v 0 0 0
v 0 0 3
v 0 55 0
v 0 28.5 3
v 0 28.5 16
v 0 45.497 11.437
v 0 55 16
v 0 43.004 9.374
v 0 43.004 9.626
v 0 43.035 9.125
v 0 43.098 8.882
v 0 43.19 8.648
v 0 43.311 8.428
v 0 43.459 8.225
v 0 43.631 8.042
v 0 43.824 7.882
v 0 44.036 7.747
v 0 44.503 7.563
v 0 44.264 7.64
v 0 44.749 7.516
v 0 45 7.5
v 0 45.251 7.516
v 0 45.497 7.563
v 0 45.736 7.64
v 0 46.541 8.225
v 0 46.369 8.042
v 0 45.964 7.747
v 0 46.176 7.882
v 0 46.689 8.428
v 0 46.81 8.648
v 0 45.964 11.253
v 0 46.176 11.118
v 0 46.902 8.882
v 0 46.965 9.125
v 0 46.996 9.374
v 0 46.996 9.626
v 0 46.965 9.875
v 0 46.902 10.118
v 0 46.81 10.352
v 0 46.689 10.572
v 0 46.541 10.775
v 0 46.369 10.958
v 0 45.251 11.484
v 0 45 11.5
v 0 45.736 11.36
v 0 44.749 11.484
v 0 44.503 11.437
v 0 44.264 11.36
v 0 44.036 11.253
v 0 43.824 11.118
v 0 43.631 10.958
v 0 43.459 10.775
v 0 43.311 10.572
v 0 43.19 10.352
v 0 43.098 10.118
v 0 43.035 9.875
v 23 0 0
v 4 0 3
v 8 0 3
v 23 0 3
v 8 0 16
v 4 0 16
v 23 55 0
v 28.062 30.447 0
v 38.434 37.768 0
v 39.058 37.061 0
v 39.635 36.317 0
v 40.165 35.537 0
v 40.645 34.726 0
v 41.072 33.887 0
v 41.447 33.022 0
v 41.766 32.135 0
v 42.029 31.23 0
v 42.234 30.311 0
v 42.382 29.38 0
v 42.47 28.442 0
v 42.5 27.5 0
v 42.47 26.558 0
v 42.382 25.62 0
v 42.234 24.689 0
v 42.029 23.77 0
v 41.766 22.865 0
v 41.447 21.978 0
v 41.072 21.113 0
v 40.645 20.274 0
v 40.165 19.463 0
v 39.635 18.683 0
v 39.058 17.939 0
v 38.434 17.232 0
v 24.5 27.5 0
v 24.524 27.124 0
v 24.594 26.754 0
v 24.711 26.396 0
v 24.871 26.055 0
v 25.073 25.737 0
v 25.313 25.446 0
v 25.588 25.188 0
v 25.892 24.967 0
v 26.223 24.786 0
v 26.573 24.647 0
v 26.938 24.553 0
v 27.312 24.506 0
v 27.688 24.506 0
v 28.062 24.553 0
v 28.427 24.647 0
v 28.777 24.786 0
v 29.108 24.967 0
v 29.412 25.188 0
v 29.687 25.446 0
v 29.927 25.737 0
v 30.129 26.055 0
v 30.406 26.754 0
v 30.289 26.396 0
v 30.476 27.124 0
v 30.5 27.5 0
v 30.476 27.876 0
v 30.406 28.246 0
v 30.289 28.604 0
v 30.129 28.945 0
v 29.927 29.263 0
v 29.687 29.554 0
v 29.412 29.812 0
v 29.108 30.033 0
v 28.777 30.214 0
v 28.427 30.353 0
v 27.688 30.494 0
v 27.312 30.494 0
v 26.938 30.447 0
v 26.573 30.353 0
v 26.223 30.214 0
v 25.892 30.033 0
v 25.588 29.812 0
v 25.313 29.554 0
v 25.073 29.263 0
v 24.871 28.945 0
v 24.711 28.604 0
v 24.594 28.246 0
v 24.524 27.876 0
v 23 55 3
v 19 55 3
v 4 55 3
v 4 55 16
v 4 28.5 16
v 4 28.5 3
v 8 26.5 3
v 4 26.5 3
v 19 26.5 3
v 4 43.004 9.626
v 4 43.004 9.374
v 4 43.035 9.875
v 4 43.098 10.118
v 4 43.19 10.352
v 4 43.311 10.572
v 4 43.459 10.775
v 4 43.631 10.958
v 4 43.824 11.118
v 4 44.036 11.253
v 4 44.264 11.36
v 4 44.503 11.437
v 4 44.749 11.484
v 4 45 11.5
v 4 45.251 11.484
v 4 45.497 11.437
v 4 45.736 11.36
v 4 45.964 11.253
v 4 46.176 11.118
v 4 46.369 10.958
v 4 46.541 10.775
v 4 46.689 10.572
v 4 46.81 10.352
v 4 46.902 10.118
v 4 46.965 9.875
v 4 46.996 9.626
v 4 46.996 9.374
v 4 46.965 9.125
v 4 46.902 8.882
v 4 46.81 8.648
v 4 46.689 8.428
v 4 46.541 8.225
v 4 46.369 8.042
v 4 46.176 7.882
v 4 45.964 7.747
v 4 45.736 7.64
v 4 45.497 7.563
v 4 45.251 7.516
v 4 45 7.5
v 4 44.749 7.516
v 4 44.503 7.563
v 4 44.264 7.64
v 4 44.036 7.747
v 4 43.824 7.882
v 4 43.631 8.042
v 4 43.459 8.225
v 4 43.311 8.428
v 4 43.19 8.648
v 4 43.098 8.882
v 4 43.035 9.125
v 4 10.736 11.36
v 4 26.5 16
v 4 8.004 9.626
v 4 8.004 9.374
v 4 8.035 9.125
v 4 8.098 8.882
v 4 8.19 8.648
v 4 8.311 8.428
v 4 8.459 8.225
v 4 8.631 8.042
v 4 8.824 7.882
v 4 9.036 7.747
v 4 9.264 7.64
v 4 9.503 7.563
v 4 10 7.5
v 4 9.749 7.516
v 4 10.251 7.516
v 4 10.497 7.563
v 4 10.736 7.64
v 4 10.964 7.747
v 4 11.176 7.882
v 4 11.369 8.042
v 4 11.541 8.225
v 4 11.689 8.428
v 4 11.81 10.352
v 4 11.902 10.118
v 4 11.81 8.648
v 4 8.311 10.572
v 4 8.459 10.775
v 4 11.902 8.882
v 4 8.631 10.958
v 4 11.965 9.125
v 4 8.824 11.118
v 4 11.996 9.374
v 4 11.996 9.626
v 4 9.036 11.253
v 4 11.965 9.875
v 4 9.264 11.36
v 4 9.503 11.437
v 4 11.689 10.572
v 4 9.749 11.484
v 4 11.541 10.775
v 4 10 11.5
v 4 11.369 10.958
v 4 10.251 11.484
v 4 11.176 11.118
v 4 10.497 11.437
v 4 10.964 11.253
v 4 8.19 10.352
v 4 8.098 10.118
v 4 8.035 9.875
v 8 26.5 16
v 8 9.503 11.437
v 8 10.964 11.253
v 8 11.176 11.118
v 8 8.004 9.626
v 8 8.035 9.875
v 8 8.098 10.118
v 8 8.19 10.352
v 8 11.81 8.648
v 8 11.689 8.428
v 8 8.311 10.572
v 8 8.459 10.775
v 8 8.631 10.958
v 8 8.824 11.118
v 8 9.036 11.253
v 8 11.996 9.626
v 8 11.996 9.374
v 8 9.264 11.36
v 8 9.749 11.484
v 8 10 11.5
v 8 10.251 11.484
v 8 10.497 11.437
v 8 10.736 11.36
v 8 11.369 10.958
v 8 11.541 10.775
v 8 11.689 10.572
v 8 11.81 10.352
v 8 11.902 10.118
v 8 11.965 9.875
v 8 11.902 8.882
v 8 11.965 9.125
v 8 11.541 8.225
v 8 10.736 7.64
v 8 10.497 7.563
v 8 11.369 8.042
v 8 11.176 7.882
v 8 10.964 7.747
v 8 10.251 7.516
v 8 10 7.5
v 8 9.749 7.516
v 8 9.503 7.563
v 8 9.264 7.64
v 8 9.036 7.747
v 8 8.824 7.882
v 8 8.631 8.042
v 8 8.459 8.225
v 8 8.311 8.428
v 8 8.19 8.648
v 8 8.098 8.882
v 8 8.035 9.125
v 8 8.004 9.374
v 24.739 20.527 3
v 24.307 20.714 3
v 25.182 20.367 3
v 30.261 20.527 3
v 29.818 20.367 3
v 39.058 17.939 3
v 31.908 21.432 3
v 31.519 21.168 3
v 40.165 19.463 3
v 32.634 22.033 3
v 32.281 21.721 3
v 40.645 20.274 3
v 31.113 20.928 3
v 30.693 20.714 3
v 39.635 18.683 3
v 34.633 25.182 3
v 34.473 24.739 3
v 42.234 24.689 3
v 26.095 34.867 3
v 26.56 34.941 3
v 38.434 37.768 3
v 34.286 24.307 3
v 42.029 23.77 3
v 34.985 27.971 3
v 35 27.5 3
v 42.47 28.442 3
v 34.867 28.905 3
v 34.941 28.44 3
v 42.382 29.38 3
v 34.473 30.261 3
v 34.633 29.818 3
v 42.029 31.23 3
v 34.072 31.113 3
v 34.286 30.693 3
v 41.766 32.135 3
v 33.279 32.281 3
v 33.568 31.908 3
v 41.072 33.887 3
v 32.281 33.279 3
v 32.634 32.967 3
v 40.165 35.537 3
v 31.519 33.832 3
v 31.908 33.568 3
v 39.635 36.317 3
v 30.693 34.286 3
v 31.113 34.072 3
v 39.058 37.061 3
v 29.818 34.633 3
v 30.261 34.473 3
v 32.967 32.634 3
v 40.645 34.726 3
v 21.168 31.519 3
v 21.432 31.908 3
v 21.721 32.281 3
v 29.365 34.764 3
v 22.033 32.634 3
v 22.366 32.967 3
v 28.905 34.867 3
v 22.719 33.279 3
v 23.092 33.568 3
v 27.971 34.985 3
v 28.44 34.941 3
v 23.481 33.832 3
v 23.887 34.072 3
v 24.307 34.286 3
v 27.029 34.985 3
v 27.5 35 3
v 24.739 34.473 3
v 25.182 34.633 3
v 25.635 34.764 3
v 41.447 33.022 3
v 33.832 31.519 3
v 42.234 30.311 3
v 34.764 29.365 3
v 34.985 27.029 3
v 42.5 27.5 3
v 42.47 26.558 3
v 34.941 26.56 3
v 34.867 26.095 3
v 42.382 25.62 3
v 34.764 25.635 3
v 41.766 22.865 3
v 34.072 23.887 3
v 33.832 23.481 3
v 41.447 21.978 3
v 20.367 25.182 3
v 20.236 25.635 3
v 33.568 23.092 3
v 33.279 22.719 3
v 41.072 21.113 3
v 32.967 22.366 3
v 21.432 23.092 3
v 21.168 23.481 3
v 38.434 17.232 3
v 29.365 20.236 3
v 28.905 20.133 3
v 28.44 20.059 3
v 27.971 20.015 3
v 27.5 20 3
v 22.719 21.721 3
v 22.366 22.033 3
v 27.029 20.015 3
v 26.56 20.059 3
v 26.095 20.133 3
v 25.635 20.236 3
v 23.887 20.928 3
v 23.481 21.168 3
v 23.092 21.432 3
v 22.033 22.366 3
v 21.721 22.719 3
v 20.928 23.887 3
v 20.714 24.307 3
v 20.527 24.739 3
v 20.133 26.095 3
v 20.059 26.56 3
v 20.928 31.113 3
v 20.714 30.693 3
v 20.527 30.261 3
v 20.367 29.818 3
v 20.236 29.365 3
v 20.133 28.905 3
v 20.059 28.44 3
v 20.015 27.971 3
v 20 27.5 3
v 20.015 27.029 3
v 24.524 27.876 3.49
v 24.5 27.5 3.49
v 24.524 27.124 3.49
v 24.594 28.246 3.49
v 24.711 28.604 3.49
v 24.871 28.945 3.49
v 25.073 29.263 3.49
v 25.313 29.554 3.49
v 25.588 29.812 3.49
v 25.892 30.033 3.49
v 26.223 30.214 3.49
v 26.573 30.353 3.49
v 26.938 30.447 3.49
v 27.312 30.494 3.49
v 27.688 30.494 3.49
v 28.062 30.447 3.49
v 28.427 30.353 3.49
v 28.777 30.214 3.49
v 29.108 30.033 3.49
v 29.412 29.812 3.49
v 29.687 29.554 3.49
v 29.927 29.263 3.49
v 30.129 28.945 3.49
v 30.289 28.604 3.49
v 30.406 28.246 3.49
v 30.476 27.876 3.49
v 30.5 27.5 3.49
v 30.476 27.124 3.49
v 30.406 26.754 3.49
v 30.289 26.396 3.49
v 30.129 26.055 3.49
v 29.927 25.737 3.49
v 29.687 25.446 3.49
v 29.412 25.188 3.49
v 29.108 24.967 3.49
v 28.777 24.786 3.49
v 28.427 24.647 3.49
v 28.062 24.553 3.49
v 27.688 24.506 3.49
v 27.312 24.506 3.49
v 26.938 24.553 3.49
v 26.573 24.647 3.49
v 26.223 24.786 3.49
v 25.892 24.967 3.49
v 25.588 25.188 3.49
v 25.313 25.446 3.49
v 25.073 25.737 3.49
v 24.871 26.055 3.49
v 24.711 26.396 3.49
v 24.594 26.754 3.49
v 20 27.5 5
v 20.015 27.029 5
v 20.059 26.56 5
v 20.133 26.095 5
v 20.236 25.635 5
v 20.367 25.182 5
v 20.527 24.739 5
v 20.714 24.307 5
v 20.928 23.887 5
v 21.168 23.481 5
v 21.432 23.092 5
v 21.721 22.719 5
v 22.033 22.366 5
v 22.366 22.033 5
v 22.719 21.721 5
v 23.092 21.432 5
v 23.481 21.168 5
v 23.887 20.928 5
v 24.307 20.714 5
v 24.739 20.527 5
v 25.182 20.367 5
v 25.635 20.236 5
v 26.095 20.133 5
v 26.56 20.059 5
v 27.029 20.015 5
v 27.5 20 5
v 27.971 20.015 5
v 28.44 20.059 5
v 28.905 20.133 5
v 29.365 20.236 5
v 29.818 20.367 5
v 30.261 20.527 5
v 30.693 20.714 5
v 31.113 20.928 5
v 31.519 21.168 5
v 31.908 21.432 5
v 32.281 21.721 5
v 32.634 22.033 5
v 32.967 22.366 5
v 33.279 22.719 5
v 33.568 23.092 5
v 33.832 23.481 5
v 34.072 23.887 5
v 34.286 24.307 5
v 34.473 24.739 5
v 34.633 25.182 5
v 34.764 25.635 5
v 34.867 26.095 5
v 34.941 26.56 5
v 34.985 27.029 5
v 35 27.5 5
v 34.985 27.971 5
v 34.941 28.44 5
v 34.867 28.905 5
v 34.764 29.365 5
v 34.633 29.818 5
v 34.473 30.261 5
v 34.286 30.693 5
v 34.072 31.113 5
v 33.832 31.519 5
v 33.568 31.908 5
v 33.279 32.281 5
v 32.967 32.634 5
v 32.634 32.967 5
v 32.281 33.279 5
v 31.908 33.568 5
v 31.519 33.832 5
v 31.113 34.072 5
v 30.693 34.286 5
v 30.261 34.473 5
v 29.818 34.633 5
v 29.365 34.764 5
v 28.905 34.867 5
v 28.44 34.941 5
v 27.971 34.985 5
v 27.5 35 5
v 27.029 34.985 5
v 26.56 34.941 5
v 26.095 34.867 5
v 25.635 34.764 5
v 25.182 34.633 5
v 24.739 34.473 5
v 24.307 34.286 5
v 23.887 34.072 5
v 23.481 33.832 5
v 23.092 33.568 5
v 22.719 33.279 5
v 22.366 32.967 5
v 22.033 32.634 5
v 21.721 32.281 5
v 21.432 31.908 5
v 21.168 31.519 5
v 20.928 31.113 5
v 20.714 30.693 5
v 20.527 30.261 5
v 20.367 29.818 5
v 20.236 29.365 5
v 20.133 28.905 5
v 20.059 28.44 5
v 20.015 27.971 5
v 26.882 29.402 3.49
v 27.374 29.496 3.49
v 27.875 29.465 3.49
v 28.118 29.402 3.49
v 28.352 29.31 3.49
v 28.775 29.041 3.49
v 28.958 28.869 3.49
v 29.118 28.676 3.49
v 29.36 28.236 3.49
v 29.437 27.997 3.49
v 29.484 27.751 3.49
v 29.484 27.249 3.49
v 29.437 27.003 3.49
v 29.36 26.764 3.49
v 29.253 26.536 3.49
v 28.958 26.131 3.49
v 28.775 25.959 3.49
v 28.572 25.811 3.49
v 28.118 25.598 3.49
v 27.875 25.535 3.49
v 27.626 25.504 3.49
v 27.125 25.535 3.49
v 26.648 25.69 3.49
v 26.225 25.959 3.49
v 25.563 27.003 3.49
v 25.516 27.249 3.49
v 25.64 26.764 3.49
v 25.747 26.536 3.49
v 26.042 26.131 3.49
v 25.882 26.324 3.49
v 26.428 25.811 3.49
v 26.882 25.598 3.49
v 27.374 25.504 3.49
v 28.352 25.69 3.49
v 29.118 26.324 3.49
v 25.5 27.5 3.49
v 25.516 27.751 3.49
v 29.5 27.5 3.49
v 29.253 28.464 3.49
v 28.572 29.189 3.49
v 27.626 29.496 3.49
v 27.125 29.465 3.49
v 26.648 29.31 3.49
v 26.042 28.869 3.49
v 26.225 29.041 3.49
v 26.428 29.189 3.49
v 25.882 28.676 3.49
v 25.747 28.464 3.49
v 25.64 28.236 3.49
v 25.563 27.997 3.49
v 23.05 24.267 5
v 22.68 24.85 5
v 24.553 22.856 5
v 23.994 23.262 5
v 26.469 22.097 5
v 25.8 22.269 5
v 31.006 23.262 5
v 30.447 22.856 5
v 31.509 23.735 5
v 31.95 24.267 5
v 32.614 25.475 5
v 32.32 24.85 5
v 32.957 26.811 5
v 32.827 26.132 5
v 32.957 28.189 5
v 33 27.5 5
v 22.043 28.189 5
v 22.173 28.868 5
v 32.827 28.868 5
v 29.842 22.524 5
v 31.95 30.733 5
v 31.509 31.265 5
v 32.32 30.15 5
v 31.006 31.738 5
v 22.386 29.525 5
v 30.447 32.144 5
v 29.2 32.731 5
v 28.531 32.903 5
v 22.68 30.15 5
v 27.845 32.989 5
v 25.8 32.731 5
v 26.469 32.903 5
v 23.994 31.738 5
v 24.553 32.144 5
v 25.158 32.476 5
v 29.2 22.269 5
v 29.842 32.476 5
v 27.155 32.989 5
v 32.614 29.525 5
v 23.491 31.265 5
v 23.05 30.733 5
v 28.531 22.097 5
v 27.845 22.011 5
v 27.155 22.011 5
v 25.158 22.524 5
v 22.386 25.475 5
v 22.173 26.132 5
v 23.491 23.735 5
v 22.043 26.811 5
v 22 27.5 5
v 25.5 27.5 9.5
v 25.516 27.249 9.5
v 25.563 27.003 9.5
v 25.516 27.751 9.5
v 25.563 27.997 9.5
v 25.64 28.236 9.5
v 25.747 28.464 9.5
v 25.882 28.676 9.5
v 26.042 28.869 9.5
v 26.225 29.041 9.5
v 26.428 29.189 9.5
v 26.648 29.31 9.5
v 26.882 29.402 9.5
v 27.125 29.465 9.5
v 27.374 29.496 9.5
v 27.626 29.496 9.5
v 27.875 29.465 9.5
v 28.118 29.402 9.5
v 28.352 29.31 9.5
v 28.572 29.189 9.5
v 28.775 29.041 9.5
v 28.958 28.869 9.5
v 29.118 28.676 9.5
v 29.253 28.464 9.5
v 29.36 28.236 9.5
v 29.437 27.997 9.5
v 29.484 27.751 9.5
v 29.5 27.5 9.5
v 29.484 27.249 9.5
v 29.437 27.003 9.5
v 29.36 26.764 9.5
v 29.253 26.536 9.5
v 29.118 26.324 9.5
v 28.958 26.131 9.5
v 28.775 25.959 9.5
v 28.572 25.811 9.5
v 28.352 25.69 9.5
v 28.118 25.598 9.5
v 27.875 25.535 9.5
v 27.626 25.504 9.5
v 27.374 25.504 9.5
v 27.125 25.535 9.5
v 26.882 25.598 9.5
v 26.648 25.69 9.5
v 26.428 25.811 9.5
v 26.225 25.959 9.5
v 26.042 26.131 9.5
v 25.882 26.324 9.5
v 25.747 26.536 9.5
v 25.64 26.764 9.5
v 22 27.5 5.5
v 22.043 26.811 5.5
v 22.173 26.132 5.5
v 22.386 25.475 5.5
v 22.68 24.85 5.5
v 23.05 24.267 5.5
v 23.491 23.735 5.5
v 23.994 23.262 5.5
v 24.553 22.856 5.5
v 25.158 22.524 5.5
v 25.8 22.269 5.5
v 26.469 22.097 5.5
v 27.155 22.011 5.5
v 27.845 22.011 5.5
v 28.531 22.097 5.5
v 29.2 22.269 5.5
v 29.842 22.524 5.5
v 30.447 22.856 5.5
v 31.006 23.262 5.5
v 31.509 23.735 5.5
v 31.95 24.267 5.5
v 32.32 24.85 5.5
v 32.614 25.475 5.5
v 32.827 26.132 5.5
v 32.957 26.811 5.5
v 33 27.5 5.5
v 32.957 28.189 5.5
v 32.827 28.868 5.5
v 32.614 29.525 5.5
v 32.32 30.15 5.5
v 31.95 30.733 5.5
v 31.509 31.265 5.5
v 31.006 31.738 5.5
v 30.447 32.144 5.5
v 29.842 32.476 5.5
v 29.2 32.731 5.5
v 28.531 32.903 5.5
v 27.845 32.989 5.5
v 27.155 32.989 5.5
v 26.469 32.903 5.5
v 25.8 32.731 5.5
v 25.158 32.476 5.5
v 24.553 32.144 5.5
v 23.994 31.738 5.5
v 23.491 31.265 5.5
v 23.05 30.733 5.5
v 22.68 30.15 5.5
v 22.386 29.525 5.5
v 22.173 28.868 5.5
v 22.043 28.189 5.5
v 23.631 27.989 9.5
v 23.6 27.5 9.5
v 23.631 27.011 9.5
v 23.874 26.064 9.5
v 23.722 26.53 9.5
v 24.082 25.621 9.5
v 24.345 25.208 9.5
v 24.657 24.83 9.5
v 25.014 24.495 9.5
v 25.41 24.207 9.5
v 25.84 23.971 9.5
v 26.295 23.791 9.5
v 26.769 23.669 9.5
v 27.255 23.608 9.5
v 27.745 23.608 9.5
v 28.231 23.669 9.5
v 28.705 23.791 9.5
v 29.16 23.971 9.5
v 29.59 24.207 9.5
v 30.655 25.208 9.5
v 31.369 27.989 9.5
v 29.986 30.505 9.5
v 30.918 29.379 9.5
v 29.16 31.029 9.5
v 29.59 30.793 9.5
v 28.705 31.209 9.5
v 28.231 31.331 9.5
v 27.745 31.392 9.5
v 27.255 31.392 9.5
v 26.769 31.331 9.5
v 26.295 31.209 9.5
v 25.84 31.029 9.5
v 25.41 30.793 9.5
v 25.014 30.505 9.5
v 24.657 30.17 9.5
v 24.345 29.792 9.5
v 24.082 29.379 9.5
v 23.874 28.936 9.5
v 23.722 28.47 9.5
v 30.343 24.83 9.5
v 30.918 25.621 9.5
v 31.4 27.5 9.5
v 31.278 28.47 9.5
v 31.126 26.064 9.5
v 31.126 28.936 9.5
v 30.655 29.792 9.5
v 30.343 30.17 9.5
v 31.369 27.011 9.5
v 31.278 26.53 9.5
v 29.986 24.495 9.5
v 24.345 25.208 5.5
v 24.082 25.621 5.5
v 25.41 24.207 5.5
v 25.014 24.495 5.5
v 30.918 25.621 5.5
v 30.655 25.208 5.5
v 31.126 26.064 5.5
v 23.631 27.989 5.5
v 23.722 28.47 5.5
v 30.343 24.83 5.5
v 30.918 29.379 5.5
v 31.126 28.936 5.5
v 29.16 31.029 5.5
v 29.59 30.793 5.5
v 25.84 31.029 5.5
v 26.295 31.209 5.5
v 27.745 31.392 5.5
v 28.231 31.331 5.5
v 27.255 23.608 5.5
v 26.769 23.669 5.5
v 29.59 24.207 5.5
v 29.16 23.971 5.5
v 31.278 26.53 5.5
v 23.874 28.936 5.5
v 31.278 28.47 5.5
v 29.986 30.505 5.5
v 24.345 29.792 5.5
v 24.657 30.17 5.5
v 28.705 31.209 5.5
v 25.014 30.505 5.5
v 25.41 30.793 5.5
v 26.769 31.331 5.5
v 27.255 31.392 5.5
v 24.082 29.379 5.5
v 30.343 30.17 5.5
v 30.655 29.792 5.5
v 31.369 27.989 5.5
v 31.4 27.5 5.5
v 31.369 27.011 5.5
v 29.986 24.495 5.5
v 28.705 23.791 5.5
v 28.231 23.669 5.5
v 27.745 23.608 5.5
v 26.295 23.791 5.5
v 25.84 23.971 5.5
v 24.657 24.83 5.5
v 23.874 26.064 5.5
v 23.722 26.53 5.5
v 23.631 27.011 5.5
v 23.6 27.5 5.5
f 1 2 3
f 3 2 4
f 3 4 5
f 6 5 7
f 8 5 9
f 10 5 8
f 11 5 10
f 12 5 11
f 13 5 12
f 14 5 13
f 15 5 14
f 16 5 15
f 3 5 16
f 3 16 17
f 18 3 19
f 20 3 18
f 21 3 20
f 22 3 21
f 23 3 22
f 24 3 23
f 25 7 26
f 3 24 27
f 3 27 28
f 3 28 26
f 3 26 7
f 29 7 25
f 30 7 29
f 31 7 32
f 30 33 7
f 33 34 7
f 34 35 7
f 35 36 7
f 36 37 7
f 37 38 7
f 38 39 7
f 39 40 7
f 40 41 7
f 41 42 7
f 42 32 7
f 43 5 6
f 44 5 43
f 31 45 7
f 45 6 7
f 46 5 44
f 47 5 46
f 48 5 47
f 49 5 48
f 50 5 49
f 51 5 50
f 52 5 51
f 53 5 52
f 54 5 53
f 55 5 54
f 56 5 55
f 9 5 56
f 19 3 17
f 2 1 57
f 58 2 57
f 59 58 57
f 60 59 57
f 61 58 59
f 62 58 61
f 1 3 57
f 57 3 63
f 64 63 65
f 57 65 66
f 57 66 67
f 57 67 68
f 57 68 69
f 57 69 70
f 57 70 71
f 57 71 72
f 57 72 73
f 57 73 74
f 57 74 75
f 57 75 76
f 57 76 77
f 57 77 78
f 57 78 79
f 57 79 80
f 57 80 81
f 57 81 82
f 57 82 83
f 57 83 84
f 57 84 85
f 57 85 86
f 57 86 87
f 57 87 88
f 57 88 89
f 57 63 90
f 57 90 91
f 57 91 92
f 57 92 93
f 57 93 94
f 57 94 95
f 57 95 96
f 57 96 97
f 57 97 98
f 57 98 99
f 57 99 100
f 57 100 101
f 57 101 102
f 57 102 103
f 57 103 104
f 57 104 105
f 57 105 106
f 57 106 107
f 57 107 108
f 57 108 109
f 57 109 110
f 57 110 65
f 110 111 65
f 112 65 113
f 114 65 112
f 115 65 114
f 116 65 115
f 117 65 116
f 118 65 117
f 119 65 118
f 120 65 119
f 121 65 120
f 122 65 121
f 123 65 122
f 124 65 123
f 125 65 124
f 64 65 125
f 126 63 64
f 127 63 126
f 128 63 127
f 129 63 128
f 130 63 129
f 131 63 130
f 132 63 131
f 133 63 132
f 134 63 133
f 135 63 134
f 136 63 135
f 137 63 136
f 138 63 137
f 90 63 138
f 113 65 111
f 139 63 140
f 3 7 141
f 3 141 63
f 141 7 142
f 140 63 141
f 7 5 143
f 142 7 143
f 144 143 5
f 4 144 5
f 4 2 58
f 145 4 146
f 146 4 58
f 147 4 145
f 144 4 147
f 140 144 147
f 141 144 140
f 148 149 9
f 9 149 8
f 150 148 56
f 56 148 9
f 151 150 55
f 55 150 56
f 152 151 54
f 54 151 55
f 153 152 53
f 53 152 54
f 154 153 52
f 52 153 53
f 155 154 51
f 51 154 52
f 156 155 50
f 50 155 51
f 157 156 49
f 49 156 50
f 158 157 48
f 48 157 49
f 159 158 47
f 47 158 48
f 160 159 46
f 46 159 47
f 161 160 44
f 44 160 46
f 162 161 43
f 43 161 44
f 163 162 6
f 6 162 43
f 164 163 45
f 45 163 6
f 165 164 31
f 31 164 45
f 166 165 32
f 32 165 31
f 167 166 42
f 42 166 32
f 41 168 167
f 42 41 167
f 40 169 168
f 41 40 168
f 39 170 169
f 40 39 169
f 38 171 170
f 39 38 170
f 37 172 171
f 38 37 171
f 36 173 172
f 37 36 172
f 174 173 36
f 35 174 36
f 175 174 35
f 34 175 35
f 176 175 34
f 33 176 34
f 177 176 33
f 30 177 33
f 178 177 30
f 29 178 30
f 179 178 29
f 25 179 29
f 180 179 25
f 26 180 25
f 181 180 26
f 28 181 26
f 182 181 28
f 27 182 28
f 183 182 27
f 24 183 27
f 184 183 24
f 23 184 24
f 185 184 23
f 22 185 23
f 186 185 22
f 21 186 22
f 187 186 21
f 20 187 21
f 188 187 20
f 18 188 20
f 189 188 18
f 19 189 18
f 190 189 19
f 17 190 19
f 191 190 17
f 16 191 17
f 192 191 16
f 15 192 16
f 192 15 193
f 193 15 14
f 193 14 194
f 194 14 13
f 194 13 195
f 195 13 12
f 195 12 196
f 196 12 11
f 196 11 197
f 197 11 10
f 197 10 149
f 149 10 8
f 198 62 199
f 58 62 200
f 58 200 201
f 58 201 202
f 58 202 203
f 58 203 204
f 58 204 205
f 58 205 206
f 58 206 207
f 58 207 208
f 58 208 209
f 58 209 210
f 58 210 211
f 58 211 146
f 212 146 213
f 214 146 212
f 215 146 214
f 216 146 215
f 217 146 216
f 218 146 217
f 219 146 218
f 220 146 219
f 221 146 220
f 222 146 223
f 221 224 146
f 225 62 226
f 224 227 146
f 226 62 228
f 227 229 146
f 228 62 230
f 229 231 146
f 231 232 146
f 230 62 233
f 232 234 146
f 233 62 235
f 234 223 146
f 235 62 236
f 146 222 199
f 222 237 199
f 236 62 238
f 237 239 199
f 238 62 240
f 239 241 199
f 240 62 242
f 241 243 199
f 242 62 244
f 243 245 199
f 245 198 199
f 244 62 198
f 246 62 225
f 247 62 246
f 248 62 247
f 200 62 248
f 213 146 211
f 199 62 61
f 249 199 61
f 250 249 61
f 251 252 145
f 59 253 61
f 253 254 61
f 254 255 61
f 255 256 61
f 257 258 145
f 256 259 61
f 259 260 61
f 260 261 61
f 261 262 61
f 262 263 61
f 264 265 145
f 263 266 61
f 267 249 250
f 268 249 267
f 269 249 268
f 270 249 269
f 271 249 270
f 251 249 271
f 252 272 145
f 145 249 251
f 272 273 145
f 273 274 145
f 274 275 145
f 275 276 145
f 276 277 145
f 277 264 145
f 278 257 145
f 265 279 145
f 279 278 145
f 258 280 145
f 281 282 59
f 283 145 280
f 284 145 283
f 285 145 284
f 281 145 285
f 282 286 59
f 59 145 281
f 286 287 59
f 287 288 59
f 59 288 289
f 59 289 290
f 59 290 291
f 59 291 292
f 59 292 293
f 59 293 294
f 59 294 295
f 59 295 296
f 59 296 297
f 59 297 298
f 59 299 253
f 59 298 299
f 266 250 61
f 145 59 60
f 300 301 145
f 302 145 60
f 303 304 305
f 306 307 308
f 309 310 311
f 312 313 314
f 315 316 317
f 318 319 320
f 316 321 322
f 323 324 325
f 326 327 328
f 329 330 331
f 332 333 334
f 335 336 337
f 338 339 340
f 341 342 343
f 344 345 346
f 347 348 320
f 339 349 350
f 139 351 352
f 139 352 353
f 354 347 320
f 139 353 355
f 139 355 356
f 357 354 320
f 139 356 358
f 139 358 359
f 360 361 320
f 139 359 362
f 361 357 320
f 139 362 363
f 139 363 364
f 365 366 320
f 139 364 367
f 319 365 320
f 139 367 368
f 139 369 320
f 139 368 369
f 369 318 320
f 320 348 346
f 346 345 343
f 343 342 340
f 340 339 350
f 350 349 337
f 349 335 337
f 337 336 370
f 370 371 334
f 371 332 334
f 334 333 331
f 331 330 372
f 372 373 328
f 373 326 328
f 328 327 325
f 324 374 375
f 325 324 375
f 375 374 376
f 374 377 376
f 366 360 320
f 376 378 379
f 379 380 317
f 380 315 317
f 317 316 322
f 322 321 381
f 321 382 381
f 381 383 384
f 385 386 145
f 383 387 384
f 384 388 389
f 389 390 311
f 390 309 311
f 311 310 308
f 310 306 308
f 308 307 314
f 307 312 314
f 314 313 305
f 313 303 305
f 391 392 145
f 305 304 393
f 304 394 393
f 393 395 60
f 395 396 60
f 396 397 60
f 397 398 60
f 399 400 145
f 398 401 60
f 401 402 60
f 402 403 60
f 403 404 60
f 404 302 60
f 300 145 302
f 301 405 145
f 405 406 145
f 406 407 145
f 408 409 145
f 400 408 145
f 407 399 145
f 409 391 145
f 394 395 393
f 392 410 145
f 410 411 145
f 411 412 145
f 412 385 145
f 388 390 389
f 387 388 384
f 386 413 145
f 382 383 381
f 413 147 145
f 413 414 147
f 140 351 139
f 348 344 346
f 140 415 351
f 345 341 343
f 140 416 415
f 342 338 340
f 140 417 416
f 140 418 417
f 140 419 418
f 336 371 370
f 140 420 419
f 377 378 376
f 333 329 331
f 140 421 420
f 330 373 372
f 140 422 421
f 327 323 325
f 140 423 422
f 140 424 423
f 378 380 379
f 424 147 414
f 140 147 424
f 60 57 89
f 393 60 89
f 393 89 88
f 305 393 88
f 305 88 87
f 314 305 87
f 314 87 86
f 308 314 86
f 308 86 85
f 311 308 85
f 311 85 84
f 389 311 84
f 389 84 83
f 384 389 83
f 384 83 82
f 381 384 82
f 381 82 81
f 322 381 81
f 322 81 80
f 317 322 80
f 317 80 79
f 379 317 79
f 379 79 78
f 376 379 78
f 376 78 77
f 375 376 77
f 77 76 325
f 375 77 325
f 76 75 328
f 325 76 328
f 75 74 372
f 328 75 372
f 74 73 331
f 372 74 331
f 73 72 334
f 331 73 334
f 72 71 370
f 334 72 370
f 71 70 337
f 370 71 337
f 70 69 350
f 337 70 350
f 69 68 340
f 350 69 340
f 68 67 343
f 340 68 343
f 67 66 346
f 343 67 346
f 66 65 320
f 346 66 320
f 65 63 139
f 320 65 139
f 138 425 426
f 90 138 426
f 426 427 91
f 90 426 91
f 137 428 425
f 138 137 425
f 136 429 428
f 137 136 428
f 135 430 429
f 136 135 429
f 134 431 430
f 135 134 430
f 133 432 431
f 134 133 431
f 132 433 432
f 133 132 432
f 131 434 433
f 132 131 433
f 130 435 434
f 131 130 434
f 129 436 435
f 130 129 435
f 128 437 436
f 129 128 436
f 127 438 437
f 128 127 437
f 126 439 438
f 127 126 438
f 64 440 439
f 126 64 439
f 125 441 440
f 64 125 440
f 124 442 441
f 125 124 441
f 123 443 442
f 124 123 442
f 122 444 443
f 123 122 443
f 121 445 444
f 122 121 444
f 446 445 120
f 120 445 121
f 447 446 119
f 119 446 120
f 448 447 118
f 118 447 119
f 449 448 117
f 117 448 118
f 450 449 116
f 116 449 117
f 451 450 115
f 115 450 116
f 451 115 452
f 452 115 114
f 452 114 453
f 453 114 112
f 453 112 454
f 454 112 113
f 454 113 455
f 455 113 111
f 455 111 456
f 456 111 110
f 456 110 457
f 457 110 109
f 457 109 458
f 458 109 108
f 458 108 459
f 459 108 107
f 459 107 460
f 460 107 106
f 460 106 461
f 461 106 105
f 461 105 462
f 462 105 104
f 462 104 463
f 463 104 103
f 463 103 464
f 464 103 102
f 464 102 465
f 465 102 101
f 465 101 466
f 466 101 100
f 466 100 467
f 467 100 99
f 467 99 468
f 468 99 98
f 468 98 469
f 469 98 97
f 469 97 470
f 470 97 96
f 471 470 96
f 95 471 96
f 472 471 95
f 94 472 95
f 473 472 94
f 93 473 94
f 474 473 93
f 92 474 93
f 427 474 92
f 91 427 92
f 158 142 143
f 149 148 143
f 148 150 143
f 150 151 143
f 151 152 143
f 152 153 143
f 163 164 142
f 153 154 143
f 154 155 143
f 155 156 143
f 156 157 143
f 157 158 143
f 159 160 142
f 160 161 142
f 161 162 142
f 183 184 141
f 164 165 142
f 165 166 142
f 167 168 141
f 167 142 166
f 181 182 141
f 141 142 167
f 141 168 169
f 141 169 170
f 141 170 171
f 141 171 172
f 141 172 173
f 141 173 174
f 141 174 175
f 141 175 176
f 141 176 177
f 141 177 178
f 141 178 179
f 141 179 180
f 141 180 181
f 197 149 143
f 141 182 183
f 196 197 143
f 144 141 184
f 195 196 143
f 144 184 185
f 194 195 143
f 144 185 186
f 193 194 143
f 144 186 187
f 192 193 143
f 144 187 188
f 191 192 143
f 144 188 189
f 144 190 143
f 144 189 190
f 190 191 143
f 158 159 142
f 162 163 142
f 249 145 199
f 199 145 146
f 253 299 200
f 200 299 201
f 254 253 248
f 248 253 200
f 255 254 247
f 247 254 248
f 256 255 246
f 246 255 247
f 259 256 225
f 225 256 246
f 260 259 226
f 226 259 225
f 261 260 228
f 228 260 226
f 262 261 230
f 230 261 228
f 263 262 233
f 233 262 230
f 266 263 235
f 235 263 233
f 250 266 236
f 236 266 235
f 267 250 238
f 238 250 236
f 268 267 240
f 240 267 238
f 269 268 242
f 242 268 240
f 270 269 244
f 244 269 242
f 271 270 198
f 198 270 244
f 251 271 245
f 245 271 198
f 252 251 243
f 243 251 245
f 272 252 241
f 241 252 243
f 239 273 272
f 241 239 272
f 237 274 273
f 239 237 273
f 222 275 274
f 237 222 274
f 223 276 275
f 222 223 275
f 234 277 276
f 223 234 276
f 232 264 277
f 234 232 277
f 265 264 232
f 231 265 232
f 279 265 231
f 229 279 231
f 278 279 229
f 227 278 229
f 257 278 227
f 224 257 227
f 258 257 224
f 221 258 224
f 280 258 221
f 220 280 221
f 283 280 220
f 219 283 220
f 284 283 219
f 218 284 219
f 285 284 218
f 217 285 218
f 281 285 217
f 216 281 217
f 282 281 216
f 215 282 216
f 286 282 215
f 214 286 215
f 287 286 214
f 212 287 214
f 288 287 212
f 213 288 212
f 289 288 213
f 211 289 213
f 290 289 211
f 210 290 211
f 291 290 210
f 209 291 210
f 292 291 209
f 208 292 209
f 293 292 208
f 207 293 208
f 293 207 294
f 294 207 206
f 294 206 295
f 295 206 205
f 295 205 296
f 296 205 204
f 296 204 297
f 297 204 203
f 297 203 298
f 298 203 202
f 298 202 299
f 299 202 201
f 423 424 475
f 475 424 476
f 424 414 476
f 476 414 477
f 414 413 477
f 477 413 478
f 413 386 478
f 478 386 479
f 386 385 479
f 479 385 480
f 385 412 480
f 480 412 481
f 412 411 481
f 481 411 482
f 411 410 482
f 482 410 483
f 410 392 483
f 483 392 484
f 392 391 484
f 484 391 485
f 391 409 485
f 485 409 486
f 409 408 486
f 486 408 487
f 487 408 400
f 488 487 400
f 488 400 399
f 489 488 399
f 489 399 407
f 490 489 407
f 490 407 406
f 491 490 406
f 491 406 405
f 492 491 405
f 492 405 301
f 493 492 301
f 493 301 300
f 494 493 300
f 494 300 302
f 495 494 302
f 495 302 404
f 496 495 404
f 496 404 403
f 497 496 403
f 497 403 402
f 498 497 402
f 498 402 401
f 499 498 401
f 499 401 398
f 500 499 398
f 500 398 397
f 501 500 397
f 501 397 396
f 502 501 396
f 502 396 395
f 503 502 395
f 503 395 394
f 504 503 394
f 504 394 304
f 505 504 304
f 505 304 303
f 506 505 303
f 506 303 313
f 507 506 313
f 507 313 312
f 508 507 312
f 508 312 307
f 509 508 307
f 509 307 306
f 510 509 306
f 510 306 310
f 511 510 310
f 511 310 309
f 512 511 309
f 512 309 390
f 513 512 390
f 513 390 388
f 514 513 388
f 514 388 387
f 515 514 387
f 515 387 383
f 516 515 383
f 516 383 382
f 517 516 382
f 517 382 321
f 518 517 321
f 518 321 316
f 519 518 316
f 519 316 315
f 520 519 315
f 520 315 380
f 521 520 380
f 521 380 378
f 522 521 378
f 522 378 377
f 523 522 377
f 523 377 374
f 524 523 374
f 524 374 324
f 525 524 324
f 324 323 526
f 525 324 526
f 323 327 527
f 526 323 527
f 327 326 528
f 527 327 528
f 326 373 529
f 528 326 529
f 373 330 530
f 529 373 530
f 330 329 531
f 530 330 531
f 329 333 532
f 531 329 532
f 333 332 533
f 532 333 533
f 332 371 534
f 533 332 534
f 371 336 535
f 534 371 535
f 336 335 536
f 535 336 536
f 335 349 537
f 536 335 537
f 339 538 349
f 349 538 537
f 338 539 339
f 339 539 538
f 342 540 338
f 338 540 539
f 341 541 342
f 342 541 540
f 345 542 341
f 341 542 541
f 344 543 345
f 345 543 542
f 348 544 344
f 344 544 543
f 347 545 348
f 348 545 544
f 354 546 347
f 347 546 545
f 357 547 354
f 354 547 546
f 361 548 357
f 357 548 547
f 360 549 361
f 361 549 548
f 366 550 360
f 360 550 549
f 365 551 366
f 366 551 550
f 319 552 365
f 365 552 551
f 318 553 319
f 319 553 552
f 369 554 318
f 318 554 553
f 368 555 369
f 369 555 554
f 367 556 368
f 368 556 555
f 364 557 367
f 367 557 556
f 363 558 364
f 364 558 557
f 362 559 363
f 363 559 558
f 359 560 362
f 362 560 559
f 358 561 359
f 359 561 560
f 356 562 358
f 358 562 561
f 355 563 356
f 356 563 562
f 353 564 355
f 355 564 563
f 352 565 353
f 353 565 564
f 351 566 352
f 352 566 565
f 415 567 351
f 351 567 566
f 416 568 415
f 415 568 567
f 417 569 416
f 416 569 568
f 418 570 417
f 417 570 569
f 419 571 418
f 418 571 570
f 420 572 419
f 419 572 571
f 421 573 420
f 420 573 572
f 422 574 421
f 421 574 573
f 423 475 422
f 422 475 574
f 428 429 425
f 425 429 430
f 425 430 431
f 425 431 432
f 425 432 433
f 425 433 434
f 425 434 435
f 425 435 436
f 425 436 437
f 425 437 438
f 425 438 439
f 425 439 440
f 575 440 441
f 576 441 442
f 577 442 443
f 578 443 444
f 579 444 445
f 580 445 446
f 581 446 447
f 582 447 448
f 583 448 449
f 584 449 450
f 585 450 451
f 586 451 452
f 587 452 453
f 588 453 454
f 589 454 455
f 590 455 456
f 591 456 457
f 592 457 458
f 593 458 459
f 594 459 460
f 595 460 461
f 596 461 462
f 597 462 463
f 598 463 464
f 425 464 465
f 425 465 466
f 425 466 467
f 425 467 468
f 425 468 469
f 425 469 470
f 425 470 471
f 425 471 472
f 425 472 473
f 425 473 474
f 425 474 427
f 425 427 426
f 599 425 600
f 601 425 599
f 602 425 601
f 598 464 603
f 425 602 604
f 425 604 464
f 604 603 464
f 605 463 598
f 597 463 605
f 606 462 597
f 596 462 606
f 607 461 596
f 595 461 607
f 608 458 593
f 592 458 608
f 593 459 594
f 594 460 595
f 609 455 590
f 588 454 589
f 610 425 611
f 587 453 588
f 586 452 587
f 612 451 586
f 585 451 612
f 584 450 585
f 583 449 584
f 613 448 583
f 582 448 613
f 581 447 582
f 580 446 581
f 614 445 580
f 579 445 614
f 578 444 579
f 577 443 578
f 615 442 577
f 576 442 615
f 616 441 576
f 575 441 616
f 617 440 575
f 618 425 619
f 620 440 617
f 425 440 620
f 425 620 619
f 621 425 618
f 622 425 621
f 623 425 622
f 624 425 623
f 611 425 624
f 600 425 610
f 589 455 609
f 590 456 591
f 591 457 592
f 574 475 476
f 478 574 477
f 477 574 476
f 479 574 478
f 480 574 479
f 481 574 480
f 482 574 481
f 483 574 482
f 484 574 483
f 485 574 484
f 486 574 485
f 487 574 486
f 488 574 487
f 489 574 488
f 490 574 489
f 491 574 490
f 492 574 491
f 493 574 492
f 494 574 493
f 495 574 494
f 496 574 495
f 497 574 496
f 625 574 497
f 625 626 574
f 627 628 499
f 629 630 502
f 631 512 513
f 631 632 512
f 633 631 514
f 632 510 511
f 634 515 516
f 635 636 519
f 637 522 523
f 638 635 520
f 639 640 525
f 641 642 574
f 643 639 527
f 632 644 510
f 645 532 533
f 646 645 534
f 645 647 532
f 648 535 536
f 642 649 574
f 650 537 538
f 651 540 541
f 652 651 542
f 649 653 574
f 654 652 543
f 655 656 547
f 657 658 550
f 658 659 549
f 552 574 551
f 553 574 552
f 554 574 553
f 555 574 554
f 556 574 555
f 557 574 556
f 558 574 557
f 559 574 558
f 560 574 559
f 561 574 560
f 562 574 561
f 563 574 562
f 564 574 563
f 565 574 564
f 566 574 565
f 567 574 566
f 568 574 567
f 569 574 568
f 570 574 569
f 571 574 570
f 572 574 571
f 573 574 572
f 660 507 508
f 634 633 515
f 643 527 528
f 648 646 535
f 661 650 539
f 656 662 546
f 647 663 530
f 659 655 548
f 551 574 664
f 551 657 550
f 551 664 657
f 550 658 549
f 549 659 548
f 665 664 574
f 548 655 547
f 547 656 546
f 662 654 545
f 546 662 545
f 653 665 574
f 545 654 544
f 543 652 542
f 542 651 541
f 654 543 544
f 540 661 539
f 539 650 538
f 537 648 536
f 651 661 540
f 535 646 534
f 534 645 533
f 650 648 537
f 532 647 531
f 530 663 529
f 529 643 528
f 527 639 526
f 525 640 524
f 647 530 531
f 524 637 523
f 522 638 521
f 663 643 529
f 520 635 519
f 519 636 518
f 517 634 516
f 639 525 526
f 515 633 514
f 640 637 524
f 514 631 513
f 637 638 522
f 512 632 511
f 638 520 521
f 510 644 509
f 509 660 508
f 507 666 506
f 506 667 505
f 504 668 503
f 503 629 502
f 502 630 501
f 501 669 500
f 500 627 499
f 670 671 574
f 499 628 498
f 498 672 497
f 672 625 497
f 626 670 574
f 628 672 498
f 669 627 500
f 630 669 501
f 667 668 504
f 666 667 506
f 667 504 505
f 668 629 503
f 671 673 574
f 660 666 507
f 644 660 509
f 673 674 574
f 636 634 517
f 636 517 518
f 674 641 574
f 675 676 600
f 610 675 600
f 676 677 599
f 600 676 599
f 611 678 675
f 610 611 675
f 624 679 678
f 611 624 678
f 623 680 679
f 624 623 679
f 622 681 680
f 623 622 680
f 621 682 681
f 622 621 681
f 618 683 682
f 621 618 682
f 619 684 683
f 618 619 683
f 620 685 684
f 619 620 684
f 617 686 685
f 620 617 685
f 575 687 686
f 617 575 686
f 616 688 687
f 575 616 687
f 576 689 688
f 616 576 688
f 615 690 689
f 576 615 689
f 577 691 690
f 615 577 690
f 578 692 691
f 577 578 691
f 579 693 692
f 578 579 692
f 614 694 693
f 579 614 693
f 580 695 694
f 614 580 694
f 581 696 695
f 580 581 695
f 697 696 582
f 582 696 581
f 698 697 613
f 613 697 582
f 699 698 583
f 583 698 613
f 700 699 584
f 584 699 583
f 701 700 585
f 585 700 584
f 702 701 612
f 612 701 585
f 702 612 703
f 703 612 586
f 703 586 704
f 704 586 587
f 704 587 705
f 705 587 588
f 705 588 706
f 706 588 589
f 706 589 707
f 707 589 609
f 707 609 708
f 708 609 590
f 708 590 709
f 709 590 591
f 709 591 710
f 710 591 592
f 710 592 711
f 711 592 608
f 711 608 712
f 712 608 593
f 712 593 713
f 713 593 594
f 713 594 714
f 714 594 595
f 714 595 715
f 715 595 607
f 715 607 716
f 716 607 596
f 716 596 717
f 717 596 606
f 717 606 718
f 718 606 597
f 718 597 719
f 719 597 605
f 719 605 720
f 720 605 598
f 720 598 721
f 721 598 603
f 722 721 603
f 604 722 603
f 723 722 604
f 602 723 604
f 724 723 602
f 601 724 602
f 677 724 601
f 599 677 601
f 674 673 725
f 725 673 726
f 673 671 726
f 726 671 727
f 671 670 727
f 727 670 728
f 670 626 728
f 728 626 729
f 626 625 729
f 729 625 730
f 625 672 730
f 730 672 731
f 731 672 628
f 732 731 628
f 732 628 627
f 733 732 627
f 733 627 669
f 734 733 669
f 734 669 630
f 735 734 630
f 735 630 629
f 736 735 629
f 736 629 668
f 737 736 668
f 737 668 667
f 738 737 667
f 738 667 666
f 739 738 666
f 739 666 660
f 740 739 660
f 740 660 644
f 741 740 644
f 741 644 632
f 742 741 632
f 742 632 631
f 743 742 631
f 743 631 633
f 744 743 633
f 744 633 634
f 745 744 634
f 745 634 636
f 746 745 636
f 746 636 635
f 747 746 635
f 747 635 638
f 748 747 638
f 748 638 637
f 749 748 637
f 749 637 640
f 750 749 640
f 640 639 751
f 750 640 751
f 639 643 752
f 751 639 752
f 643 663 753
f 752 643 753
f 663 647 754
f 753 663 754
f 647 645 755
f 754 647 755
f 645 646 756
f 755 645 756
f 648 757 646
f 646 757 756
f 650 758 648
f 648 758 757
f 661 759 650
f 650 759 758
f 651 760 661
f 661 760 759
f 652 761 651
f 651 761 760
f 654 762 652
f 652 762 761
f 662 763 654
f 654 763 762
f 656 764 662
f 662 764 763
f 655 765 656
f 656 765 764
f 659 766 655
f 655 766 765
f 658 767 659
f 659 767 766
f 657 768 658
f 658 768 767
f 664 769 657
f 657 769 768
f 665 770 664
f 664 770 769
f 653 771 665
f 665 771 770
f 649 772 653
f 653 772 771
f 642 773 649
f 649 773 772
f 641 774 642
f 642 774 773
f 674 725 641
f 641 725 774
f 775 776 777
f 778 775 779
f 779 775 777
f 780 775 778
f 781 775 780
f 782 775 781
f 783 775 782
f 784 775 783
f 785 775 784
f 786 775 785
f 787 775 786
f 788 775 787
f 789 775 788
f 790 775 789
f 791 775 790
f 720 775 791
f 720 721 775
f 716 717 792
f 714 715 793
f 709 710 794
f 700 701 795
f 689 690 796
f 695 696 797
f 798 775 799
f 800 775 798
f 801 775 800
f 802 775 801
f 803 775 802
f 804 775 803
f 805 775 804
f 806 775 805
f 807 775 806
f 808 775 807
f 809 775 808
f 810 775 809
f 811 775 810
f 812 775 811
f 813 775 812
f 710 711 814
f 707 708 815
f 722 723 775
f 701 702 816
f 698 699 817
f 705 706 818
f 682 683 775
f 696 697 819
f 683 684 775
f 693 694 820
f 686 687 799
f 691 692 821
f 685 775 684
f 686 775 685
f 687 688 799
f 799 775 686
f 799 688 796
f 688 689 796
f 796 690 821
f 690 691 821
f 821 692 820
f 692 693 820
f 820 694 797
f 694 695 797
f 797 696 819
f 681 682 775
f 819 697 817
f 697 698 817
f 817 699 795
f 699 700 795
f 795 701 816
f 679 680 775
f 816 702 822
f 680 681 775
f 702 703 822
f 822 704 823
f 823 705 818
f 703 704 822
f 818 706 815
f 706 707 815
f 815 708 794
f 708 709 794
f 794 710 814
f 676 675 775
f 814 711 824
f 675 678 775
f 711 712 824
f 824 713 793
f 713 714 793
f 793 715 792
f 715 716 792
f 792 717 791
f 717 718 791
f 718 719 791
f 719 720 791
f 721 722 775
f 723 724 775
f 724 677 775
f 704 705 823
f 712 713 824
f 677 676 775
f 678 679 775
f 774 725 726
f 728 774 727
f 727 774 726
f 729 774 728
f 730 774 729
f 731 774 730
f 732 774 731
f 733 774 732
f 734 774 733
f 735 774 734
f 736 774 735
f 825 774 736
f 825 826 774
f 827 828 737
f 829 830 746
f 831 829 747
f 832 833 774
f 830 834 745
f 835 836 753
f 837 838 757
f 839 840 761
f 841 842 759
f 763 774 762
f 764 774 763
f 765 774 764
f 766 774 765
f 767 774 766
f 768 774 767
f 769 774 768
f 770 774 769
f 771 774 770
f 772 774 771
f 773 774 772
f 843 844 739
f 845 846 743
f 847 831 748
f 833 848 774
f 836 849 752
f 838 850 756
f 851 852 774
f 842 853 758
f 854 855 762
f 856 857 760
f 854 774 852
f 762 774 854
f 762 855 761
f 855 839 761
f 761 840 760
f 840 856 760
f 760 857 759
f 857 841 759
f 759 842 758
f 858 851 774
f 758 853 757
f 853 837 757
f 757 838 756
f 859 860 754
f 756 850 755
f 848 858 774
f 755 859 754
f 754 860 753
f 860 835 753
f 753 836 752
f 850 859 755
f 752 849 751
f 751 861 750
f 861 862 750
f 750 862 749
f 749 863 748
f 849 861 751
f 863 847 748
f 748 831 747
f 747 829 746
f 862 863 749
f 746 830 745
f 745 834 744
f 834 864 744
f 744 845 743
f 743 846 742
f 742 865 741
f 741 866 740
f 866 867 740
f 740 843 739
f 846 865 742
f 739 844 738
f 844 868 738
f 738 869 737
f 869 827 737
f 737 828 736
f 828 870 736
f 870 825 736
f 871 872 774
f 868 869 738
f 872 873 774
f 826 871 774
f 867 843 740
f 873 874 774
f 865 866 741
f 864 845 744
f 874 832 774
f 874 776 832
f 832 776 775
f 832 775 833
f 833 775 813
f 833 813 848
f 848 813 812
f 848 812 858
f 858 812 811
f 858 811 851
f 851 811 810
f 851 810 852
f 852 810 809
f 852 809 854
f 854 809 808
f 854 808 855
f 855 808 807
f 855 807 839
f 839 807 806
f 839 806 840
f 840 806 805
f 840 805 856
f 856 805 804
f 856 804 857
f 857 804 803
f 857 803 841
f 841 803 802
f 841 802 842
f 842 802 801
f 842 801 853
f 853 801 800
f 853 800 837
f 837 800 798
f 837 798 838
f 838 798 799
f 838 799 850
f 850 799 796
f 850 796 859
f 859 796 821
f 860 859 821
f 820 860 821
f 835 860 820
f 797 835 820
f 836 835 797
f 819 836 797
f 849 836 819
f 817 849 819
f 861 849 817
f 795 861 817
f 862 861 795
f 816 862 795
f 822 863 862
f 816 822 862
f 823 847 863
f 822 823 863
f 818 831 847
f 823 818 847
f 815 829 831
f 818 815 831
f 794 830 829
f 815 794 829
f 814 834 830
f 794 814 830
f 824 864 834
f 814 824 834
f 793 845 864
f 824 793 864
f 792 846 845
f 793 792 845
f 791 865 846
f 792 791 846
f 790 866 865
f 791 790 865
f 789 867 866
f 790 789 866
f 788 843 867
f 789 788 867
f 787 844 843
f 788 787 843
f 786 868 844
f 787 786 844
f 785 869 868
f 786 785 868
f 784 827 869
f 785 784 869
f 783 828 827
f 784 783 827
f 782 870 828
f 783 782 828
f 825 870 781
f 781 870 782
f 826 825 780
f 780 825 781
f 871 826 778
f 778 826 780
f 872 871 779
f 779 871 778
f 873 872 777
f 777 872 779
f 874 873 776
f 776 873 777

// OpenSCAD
entraxe=35;
largeur=55;
r_m3=2;
r_ecrou_m3=3.3;
dec_y=27.5;
ep=3;
hauteur=16;
dec_x=8;
ep_608=8;
r_m8=3.9;


module retour_y(){
	difference(){
		union(){
		cube([dec_x,largeur,hauteur]);

		hull(){
		translate([dec_x,0,0]){cube([15,55,ep]);}
		translate([dec_y,largeur/2,0]){ cylinder(h=ep, r=15, $fn=100);}
		}

		//flasque pour roulement
		translate([dec_y,largeur/2,ep]){cylinder(r=7.5, h=(hauteur-ep)/2-ep_608/2-0.5, $fn=100);}
		translate([dec_y,largeur/2,ep+(hauteur-ep)/2-ep_608/2-0.5]){cylinder(r=5.5, h=0.5, $fn=50);}
		translate([dec_y,largeur/2,ep+(hauteur-ep)/2-ep_608/2]){cylinder(r=r_m8, h=ep_608/2, $fn=50);}

		}

		//extrusions pour symétriser
		translate([dec_x/2,largeur/2-1,ep]){cube([15,55,hauteur]);}
		translate([-1,-1,ep]){cube([dec_x/2+1,largeur/2+1+1,hauteur]);}

		//trous de fixation à la mallette
		translate([10,10,hauteur/2+ep/2]){rotate([0,-90,0]) cylinder(h=20, r=r_m3, $fn=50);}
    	translate([10,45,hauteur/2+ep/2]){rotate([0,-90,0]) cylinder(h=20, r=r_m3, $fn=50);}

		

		//trou d'axe
		translate([dec_y,largeur/2,-5]){ cylinder(h=hauteur*2, r=r_m3, $fn=50);}
		translate([dec_y,largeur/2,-0.01]){ cylinder(h=3.5, r=3, $fn=50);}

		
	}
	
}

retour_y();

//translate([0,largeur,hauteur+ep]){rotate([180,0,0])retour_y();}
